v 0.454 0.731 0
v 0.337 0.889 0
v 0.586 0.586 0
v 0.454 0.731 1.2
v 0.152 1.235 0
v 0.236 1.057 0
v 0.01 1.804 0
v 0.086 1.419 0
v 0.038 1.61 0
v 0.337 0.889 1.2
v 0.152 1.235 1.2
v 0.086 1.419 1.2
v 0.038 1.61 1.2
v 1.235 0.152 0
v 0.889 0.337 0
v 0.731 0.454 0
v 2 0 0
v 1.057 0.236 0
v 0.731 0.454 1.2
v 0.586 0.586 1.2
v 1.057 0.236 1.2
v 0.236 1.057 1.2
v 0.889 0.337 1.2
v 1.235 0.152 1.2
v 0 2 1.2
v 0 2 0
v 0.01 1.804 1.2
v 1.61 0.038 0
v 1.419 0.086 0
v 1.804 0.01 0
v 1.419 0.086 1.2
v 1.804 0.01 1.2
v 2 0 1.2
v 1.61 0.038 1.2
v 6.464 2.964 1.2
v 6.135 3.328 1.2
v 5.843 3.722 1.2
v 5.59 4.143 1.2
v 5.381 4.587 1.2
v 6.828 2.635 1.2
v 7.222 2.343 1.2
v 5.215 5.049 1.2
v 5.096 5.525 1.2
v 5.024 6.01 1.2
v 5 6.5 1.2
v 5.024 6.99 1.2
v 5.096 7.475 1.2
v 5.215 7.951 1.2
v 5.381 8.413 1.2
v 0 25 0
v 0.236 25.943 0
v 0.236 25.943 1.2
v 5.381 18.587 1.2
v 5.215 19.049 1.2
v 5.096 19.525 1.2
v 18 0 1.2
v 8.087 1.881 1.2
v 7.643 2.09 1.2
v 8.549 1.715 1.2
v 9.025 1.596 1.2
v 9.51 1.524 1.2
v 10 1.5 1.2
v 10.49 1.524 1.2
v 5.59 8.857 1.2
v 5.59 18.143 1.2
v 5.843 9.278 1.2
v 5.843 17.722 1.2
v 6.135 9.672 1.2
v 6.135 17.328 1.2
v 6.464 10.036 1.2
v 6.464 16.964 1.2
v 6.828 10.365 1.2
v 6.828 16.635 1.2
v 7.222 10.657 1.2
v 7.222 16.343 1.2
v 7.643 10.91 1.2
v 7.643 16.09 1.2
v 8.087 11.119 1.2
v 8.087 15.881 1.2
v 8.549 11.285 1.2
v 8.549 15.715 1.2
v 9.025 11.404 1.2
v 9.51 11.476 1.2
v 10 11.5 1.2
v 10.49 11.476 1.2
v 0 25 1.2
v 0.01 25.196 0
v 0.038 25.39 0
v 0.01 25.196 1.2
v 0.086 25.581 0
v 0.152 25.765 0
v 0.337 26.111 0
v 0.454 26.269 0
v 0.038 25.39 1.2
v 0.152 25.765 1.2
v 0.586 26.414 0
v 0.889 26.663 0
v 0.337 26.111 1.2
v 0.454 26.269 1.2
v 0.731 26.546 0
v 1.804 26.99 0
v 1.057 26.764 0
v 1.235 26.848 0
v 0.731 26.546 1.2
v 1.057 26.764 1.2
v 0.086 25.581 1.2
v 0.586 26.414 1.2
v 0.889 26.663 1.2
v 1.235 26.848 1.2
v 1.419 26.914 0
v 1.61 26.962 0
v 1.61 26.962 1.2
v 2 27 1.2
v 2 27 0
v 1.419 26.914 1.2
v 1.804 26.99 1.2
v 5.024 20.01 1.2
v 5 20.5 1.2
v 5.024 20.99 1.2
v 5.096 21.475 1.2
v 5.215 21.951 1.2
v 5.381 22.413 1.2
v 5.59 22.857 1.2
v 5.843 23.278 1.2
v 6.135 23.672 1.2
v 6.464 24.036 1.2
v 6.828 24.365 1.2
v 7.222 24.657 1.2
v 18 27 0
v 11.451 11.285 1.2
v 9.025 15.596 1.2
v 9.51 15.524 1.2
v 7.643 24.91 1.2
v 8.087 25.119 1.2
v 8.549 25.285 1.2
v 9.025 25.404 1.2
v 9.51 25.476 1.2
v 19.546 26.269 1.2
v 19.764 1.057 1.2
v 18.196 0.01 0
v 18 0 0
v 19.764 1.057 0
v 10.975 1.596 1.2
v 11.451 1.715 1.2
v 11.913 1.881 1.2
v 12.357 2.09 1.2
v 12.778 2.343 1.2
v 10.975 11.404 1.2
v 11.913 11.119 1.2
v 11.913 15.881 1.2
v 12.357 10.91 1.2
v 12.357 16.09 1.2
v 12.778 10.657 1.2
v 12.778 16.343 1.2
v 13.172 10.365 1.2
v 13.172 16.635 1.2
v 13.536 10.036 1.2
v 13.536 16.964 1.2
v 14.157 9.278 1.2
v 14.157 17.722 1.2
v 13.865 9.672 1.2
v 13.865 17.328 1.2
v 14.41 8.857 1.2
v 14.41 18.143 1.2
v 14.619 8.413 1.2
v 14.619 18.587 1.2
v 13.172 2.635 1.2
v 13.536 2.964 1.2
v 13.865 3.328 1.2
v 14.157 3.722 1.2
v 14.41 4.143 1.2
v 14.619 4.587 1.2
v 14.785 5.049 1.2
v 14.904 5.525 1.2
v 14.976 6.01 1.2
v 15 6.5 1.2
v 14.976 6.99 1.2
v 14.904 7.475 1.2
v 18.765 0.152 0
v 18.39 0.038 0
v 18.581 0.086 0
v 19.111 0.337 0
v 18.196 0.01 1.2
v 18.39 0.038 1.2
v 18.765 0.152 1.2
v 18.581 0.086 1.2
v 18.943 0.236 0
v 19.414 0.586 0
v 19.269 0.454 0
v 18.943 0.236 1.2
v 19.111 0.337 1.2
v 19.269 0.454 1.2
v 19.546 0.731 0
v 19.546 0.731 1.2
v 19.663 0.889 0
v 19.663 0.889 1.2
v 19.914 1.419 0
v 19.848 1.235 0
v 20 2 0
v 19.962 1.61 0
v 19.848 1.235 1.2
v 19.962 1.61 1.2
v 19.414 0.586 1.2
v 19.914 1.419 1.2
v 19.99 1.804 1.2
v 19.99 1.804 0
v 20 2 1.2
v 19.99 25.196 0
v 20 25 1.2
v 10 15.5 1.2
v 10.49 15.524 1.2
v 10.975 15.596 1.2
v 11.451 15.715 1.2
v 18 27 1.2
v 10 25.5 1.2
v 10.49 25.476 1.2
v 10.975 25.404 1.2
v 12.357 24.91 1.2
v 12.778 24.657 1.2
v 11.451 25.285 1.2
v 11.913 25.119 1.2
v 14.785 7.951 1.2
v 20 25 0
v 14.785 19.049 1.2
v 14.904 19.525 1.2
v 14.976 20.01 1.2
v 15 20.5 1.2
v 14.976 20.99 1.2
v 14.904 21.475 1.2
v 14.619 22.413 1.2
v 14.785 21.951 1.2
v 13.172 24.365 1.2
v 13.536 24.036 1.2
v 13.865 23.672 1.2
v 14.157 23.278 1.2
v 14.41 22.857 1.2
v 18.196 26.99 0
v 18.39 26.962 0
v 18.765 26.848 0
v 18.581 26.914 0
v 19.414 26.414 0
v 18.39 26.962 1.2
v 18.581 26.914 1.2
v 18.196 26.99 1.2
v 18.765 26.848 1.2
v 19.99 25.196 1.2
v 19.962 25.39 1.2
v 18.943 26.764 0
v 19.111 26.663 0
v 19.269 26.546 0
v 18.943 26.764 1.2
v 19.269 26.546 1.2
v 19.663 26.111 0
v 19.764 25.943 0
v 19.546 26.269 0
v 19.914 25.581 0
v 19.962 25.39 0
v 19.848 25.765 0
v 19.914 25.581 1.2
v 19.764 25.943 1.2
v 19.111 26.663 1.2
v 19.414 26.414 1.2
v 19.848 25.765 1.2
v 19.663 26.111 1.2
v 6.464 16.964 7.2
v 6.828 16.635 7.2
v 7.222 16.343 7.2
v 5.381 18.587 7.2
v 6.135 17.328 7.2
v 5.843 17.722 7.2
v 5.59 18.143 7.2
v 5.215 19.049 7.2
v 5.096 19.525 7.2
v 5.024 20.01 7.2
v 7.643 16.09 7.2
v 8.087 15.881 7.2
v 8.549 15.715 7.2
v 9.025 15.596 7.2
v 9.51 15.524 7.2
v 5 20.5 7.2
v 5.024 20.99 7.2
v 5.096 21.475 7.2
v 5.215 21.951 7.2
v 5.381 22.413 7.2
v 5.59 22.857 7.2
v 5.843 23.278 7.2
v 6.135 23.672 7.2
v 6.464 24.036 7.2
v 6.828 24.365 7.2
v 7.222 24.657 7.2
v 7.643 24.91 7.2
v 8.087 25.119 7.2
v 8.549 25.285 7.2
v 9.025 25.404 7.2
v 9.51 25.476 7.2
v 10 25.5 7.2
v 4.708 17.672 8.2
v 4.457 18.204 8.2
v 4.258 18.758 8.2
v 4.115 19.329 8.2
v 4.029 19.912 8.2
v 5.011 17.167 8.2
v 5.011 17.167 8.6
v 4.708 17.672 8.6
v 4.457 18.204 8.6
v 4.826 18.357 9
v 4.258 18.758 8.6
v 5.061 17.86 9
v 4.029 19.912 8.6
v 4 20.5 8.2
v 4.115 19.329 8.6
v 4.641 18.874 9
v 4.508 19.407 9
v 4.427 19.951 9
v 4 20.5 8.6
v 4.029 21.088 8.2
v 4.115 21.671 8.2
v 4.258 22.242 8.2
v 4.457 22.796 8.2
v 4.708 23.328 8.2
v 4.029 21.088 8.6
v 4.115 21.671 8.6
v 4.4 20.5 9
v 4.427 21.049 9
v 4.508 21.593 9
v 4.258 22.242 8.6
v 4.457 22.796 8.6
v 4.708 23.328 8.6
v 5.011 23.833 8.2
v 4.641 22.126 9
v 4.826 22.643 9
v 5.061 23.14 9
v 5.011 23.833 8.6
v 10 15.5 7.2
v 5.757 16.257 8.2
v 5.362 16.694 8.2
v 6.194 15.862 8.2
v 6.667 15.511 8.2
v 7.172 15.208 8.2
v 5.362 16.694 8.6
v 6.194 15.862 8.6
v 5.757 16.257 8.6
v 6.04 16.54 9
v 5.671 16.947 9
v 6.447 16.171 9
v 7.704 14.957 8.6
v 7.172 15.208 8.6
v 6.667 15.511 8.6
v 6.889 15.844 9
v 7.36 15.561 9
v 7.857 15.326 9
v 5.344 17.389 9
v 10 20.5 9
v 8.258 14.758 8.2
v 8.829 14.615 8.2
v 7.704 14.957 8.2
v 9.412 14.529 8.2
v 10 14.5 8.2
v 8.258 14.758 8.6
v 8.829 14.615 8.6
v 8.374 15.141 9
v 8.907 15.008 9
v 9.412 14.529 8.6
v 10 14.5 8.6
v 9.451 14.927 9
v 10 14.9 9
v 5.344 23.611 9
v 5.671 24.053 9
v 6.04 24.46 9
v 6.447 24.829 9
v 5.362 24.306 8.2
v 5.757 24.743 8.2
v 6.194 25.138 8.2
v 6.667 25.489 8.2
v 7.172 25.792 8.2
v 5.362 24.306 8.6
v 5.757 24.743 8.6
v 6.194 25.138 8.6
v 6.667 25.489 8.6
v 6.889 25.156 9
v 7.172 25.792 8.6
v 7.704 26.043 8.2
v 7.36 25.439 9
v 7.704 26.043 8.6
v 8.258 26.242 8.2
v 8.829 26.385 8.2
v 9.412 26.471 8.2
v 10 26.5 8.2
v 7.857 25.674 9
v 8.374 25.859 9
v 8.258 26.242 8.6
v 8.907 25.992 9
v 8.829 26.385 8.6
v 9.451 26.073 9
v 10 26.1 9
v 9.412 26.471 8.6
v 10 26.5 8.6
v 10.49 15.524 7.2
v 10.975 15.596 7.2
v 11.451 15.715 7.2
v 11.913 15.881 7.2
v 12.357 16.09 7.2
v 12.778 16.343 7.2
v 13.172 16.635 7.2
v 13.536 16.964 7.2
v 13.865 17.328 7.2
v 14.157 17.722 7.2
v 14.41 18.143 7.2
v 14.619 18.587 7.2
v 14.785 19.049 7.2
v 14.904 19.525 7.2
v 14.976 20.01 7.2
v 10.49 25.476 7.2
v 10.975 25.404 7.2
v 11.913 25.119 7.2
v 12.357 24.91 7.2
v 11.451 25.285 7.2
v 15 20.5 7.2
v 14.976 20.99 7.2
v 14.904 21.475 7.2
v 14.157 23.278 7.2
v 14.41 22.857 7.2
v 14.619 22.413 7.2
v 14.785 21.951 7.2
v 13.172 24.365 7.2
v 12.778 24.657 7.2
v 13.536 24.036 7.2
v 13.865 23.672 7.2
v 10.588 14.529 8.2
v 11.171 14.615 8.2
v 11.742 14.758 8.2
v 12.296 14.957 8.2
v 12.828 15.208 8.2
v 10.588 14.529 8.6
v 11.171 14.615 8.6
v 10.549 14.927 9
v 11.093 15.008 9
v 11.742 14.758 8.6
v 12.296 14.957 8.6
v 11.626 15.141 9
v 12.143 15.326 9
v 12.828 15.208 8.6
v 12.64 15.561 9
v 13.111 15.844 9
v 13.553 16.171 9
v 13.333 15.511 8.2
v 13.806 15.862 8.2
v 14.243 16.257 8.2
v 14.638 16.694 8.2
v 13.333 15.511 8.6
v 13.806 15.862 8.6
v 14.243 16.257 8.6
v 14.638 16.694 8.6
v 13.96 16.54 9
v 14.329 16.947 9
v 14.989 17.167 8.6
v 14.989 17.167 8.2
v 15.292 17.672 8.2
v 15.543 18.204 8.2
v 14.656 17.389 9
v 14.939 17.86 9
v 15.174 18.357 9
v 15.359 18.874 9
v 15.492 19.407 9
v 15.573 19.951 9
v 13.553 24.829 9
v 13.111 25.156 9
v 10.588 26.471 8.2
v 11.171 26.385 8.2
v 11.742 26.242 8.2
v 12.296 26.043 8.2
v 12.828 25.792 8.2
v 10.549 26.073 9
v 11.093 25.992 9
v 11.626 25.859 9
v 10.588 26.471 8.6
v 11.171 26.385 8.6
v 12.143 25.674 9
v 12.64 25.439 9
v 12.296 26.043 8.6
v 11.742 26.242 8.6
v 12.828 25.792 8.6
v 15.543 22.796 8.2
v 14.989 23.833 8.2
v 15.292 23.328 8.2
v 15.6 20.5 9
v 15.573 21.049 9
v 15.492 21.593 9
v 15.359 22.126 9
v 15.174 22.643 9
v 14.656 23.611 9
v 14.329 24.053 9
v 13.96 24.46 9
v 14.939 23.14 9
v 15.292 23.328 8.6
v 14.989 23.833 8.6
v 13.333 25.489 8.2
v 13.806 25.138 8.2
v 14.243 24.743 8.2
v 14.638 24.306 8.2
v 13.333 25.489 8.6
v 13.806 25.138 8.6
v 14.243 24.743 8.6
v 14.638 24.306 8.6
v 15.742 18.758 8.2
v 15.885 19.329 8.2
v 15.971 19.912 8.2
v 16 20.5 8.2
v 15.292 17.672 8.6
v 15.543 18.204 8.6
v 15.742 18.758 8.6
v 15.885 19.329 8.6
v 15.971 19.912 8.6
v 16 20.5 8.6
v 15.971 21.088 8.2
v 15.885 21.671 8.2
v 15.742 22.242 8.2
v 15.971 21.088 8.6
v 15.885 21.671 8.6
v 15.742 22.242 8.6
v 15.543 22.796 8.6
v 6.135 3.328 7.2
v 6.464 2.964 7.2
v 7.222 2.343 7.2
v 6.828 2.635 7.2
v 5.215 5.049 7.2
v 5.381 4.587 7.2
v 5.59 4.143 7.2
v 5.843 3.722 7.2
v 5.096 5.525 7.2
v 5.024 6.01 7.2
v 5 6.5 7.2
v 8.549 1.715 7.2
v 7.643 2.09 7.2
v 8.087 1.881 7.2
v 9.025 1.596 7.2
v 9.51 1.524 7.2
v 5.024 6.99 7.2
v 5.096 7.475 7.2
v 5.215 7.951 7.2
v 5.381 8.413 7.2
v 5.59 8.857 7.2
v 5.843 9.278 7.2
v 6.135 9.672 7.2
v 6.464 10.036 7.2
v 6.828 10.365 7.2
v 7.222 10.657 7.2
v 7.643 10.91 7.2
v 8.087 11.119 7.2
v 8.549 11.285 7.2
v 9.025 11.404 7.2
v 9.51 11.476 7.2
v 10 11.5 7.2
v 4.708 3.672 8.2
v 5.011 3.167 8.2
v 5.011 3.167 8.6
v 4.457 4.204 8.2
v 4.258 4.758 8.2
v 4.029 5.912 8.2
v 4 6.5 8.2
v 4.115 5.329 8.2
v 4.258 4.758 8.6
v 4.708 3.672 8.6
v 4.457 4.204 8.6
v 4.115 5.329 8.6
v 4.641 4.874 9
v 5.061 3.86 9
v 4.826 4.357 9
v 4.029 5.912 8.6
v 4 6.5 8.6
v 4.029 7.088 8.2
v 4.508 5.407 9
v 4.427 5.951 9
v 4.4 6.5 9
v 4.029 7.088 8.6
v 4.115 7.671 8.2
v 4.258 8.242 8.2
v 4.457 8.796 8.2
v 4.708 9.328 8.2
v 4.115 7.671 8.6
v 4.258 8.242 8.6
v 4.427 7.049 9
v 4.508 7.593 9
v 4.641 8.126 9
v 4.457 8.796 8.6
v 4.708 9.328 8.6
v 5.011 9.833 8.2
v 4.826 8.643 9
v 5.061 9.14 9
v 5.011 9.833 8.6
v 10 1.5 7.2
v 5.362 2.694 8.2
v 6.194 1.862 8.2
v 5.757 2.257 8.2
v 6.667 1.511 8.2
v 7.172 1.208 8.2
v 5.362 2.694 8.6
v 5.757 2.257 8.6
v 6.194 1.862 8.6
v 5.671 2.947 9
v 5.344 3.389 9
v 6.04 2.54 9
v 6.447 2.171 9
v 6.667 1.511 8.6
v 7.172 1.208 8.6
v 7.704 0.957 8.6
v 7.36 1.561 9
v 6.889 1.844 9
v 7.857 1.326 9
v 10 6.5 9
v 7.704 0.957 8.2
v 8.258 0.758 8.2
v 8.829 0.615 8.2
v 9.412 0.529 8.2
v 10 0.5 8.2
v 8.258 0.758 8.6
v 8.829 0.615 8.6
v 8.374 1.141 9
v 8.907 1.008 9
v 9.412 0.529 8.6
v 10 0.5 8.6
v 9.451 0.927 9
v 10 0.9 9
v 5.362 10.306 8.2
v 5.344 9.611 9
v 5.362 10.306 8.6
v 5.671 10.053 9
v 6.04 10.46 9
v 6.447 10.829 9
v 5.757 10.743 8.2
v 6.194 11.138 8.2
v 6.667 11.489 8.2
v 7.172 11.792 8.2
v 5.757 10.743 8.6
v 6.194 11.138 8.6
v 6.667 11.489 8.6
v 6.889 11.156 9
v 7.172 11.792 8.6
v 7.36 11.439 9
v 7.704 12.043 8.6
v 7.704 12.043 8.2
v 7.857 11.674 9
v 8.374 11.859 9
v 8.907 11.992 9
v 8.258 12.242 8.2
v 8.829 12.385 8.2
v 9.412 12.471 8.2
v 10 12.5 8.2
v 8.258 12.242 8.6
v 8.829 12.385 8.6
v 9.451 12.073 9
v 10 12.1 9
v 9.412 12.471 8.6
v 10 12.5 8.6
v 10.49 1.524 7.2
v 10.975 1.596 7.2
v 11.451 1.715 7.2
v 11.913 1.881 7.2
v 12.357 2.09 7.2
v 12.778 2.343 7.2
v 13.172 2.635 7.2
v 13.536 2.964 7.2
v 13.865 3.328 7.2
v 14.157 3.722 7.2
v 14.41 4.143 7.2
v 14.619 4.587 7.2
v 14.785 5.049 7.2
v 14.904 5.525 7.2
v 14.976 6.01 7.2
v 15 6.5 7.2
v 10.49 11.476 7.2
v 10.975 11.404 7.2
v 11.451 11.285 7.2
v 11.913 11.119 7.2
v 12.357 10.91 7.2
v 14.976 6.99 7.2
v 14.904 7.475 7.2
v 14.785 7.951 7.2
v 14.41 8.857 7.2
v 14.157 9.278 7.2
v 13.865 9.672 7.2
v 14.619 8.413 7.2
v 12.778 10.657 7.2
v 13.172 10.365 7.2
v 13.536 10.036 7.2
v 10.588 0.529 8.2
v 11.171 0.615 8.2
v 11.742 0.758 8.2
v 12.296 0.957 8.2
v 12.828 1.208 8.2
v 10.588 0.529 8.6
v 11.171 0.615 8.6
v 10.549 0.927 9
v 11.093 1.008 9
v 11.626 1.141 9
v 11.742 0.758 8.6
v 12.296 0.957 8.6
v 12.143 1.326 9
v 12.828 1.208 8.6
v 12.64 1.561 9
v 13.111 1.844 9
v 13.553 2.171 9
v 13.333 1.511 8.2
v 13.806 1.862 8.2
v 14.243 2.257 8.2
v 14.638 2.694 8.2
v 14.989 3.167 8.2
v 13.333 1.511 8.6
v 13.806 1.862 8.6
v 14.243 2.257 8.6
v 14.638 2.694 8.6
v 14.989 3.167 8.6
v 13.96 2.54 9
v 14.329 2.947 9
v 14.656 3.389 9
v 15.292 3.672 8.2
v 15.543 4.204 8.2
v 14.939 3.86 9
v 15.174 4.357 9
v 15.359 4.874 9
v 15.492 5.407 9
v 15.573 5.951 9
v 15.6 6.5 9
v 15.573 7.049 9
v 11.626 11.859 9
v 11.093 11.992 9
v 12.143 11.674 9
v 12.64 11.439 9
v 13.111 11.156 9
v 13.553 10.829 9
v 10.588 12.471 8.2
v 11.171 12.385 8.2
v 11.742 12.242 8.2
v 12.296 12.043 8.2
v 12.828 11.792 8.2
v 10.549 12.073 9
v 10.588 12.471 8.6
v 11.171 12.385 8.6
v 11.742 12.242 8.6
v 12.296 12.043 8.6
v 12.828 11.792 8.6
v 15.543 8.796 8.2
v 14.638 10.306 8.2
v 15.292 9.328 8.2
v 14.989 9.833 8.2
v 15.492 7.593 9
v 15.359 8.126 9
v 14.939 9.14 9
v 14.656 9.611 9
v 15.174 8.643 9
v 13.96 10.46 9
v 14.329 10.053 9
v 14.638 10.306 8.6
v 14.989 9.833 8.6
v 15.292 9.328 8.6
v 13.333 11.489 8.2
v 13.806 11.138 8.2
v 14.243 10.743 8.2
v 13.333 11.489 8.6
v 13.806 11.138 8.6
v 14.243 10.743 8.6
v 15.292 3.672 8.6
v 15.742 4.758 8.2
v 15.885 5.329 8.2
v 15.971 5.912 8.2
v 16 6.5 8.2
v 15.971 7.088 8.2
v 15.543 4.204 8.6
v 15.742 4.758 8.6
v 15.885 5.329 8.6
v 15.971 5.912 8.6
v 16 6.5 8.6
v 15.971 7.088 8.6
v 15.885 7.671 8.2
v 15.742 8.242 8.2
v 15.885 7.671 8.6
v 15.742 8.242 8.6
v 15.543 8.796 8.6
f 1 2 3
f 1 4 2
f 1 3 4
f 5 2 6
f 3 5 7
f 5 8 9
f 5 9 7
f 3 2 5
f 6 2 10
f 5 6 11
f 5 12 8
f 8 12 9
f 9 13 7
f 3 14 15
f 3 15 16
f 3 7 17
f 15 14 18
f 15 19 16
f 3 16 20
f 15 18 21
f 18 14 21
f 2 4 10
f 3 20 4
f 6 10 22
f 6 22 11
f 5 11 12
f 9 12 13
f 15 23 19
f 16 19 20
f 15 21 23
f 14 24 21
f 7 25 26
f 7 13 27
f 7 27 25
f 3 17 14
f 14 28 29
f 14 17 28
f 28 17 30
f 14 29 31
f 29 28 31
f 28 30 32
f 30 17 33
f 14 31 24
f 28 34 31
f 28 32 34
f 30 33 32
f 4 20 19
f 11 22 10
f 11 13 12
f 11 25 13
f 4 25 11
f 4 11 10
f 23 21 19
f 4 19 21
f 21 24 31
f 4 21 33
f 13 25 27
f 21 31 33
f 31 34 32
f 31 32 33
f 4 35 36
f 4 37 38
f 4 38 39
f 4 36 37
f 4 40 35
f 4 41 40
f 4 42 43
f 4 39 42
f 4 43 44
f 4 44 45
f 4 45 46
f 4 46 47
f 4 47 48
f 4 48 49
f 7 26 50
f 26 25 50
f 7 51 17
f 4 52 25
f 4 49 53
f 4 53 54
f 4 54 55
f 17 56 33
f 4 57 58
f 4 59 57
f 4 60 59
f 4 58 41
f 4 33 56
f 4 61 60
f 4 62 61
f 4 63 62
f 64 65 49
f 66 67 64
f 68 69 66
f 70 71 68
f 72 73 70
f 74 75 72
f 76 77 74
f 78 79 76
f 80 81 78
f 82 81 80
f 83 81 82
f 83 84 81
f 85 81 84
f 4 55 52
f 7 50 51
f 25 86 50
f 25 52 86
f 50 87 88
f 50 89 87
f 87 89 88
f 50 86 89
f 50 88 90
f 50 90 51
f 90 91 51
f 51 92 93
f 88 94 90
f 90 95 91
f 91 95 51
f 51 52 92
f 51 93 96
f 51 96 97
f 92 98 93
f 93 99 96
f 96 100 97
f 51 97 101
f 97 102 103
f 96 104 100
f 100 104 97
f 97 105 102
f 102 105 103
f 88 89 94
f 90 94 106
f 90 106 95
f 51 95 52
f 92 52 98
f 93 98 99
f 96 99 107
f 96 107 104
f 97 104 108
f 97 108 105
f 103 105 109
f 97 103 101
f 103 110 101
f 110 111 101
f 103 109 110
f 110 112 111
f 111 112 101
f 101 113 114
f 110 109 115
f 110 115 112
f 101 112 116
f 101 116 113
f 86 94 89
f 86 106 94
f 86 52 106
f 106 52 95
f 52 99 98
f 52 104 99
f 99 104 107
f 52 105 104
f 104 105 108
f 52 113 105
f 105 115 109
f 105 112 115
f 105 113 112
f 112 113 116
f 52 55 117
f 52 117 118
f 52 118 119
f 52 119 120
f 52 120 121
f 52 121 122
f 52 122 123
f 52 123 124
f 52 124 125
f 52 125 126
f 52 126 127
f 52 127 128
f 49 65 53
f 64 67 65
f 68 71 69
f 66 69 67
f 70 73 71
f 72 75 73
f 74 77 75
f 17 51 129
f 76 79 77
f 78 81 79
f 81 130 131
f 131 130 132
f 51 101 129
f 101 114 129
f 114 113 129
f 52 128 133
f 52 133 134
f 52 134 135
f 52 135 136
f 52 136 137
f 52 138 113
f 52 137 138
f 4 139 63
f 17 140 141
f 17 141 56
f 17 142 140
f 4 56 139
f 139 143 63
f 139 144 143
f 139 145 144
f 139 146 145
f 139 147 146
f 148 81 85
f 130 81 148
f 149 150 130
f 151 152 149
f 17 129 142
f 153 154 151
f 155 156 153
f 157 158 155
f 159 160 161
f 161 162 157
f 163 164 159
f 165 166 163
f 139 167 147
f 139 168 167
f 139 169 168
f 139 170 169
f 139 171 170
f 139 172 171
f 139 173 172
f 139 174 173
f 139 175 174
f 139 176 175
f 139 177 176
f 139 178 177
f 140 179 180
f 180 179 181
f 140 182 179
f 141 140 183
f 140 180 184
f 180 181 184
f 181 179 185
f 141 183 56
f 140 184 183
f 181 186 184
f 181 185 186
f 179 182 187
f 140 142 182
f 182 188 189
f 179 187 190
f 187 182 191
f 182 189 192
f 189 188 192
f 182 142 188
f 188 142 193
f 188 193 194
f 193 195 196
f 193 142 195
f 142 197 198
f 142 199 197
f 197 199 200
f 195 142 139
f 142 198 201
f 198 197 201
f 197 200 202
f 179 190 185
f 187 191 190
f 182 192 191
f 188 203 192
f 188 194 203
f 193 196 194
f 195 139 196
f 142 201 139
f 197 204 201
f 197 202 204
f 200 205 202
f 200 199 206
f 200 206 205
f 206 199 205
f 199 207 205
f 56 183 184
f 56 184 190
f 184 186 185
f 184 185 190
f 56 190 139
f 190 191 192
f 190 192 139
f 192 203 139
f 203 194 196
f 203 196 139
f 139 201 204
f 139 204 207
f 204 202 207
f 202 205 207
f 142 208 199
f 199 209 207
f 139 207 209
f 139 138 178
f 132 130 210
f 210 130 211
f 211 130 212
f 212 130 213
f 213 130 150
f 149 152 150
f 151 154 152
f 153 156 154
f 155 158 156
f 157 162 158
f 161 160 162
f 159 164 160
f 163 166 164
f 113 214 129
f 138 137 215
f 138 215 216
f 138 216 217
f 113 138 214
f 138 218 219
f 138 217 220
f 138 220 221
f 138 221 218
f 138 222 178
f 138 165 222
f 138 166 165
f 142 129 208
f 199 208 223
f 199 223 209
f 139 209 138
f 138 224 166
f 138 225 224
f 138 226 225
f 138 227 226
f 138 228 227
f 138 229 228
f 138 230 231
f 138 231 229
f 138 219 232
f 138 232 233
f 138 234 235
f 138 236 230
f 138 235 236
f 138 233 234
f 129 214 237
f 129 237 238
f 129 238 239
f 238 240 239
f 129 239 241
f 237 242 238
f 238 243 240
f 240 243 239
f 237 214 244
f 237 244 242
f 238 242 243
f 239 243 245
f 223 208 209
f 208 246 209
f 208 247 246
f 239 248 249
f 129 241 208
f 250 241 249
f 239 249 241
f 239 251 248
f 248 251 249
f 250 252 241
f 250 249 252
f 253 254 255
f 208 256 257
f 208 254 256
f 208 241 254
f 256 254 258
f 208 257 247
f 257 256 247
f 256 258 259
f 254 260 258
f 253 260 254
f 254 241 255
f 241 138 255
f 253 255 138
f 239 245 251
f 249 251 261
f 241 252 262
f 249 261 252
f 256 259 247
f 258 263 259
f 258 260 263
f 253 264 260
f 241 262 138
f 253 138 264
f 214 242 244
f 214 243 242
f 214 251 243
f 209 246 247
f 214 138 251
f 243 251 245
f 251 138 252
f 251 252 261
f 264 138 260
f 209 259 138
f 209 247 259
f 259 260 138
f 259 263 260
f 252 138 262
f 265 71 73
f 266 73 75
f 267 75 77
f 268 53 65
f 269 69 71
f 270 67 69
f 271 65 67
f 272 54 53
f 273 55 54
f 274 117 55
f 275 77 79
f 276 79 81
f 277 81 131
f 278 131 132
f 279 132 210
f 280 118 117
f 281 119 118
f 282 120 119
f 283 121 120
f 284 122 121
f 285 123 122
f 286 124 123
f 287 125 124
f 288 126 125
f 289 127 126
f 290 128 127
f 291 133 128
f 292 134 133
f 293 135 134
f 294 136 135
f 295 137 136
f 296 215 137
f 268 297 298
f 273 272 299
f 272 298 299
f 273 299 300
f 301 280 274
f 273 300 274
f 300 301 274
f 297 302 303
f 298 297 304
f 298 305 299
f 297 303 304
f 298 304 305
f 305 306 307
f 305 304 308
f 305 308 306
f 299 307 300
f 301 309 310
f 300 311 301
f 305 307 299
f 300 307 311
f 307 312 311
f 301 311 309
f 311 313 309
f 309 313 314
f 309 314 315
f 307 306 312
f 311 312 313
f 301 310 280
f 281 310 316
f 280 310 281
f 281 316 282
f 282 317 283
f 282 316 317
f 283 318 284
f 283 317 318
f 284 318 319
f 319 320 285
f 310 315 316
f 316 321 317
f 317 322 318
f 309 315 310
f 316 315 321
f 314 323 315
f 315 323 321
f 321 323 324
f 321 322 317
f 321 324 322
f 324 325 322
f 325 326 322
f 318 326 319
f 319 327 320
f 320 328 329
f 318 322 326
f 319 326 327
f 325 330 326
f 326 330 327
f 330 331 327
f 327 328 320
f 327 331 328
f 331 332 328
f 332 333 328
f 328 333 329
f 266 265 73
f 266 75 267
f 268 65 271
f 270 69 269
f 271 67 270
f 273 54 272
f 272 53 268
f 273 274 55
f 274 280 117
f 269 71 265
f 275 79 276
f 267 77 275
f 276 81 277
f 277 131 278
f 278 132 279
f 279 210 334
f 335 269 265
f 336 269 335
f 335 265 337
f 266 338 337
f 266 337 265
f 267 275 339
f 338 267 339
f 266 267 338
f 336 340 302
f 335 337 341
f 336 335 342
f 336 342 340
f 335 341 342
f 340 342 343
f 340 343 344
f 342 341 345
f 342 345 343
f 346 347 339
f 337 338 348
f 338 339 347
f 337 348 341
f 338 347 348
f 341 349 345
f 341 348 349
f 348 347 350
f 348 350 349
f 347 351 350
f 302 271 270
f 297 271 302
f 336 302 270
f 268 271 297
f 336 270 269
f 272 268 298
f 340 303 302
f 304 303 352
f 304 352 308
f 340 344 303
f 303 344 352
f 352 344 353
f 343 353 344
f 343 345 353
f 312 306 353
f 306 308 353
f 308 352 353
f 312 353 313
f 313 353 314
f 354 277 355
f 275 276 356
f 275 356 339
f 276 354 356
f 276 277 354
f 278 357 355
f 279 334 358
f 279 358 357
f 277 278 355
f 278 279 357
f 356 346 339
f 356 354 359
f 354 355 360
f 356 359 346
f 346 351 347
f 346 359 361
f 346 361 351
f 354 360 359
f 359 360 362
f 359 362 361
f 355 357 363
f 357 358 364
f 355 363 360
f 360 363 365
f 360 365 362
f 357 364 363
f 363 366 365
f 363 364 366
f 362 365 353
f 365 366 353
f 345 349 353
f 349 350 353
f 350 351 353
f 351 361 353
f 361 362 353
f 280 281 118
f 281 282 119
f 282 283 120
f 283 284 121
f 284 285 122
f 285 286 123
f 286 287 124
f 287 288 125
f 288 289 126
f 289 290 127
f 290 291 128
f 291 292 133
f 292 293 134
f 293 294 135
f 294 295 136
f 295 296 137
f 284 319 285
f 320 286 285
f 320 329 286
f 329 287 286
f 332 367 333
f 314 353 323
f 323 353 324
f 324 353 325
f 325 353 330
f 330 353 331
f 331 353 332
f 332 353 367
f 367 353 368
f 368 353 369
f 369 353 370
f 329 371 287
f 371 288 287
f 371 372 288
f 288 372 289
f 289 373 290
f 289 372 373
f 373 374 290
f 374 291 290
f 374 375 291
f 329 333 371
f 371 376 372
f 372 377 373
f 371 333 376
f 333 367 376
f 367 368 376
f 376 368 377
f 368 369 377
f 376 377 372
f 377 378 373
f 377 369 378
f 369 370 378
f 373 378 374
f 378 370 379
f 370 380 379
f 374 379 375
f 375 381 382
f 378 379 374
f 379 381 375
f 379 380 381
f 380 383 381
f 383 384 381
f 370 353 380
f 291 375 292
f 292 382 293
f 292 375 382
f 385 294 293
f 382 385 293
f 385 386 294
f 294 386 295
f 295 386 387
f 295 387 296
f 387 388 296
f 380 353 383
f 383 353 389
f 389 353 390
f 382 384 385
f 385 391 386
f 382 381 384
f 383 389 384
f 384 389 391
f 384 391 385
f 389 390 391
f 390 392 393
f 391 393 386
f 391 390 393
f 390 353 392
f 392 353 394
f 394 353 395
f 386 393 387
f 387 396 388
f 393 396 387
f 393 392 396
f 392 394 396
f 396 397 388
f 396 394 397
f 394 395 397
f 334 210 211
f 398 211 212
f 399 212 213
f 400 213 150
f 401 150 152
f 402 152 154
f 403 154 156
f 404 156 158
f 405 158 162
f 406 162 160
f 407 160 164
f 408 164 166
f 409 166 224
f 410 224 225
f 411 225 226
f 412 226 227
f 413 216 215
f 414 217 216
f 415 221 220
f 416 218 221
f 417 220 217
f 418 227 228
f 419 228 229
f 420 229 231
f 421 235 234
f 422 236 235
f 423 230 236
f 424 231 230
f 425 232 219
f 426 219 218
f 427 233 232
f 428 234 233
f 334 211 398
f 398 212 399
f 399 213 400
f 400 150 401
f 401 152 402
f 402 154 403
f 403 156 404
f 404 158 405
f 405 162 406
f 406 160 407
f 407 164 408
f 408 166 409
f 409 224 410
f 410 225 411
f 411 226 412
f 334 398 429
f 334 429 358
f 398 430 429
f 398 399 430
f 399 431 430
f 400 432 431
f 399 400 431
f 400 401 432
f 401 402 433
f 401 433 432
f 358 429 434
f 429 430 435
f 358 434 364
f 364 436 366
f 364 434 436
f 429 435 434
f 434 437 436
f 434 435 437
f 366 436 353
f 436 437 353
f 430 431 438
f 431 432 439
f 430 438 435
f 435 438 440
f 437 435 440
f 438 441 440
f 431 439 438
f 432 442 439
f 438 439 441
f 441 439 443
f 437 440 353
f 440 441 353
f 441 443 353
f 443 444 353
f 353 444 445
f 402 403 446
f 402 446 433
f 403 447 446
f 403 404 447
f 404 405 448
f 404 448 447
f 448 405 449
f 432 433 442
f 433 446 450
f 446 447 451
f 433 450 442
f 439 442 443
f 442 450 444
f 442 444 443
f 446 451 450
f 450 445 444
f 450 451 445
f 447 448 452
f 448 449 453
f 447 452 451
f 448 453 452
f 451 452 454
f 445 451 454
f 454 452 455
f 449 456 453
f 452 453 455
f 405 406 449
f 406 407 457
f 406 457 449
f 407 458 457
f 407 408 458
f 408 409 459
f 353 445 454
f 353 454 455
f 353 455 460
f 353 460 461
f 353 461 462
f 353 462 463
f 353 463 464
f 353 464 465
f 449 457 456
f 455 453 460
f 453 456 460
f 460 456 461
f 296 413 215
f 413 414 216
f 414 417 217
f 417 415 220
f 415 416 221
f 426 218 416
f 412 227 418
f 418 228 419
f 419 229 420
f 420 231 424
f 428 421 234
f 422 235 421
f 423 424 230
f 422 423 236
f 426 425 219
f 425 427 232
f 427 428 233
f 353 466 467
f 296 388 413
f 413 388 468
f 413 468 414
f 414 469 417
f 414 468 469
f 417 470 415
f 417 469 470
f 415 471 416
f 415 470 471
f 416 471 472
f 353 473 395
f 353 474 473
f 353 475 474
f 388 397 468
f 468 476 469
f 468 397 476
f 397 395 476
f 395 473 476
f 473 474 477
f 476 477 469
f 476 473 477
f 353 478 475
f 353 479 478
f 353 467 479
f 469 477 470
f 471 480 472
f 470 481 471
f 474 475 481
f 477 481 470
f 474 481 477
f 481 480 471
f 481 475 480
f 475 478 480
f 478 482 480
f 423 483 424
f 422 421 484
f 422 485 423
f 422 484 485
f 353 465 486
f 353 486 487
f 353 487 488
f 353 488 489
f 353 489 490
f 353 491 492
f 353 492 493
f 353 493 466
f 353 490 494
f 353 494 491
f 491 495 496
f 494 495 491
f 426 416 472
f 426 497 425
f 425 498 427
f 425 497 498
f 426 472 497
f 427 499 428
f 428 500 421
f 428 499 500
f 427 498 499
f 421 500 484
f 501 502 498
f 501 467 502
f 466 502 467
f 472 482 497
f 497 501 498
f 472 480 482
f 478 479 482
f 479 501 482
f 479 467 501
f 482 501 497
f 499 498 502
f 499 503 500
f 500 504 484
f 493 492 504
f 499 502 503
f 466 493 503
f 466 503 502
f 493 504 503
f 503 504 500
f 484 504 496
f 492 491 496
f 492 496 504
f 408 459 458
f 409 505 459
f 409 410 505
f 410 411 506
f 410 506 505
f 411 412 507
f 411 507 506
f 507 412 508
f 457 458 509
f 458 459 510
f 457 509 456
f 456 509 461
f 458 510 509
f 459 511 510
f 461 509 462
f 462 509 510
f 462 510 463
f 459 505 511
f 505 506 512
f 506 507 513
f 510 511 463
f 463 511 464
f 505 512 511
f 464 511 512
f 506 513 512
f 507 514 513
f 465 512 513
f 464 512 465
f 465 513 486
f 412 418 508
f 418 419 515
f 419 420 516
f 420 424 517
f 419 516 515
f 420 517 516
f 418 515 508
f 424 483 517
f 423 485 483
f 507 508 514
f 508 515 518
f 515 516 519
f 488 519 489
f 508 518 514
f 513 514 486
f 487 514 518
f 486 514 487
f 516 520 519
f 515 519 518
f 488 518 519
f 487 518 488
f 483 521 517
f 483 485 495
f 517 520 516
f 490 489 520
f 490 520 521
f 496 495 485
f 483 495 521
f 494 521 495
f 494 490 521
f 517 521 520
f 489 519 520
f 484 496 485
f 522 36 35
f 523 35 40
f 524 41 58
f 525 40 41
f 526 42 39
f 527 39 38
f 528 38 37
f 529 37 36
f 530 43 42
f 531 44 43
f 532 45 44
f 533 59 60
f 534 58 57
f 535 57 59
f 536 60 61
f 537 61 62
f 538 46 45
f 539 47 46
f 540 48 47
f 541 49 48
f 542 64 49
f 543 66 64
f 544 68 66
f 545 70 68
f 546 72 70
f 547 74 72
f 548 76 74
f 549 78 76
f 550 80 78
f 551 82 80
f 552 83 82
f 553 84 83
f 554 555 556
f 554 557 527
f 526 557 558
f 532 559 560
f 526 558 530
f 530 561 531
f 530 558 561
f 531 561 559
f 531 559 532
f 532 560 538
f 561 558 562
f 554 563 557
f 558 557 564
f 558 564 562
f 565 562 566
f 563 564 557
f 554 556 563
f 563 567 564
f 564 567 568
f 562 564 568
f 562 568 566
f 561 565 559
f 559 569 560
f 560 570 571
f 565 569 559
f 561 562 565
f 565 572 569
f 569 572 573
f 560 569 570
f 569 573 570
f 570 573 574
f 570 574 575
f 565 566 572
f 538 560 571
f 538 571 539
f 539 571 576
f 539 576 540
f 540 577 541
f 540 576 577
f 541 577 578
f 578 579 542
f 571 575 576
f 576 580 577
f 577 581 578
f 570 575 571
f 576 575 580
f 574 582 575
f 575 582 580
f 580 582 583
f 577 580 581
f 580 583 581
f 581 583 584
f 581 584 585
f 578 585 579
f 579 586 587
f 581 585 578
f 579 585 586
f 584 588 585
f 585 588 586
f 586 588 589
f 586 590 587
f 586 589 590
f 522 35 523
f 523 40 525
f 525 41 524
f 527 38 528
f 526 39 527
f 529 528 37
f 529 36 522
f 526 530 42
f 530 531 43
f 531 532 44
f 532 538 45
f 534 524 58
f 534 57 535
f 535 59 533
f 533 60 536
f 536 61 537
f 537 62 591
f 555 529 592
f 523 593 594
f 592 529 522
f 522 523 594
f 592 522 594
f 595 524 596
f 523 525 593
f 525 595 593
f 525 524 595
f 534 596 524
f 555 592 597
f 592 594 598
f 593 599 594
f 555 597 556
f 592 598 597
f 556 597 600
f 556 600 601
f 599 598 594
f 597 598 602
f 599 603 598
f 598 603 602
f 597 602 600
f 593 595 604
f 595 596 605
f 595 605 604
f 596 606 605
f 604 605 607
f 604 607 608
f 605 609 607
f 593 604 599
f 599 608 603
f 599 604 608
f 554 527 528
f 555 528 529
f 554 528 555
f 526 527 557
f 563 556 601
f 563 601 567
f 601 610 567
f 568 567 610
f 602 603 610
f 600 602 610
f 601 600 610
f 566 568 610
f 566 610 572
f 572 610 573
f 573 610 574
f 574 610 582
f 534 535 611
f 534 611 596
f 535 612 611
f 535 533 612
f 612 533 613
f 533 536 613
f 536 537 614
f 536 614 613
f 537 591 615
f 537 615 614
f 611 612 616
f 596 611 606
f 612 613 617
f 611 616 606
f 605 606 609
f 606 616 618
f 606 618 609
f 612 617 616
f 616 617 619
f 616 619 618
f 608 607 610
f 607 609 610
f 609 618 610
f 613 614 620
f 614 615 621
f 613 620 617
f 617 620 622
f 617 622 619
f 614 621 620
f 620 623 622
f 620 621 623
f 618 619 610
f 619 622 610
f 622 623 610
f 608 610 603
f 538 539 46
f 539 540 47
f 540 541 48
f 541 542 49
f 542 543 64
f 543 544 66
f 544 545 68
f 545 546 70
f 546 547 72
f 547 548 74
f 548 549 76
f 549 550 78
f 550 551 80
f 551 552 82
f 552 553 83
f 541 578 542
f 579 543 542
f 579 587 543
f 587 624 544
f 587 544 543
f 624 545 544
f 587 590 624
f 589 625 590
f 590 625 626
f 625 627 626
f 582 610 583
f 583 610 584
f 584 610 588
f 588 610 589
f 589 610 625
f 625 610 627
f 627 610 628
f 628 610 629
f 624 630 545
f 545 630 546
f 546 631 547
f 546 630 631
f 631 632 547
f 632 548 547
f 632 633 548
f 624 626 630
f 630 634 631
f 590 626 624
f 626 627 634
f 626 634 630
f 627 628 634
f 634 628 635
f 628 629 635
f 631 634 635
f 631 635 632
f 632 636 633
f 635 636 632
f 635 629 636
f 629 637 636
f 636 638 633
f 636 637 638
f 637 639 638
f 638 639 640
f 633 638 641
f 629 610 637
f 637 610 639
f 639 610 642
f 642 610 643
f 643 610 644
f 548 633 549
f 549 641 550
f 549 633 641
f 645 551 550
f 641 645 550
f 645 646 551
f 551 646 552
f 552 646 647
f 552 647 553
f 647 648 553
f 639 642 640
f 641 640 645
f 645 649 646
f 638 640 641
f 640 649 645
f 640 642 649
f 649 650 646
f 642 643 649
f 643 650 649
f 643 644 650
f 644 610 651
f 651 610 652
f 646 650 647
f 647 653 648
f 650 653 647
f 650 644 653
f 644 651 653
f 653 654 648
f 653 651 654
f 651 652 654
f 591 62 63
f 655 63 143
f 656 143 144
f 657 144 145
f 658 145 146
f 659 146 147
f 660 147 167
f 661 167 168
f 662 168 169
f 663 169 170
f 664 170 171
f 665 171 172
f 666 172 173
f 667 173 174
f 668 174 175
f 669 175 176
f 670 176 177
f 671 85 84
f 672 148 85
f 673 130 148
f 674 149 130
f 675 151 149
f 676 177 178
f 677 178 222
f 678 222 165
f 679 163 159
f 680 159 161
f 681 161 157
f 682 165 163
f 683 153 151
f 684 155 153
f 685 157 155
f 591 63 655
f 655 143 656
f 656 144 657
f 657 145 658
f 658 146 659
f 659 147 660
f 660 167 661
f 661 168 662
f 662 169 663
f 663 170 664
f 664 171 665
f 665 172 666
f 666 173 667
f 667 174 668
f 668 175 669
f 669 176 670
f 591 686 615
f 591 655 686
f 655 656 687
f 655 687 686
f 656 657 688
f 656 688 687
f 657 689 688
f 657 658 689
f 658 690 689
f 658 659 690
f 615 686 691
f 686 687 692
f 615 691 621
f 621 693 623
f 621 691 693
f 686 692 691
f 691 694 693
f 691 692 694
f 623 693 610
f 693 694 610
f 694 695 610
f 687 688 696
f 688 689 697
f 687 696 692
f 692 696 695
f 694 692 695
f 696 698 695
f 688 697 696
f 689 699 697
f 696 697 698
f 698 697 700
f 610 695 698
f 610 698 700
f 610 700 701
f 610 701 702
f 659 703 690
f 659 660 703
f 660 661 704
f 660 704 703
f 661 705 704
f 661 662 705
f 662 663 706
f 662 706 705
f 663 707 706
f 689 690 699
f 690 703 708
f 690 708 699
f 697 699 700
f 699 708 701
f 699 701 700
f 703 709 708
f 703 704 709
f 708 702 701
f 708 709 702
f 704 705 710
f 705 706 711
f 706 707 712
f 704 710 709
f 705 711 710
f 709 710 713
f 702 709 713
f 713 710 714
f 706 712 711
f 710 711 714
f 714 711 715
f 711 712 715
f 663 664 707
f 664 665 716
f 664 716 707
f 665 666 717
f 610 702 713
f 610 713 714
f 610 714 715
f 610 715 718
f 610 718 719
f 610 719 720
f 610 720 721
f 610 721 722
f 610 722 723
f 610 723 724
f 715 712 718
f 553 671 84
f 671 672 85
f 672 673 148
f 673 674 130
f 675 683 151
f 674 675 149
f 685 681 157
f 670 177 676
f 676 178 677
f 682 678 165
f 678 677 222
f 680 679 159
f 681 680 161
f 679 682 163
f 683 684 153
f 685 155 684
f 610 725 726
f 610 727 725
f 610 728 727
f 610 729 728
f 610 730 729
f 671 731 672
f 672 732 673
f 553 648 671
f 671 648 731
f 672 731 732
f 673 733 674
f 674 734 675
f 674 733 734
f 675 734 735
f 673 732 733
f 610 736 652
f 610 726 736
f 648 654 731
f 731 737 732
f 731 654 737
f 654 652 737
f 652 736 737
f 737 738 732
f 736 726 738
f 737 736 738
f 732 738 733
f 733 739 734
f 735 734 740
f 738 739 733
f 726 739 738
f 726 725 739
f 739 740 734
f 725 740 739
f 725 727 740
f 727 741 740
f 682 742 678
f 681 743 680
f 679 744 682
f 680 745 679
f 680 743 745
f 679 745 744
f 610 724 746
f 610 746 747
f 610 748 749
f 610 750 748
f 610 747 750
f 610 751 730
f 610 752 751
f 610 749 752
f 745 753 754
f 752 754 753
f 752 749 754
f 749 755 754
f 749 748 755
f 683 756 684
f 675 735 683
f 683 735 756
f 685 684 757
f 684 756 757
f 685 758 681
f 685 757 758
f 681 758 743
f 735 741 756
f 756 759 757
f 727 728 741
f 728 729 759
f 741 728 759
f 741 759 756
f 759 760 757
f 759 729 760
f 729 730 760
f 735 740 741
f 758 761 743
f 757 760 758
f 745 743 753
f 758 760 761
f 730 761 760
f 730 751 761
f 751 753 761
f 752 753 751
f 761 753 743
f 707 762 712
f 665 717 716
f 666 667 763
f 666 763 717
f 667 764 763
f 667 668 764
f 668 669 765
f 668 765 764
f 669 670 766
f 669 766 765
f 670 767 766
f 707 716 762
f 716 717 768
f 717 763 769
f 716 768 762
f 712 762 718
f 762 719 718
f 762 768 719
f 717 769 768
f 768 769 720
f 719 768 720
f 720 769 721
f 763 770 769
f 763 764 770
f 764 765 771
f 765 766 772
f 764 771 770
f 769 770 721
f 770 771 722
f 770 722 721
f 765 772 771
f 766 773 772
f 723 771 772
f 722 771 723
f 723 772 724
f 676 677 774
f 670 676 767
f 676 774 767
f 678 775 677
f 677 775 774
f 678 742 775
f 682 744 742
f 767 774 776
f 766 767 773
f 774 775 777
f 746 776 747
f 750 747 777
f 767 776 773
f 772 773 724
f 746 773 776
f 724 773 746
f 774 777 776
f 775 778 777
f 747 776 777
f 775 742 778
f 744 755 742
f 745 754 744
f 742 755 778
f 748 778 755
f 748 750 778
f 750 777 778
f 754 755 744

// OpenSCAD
// v0.3 add-on, 2026-09-09: removable two-post cable guide. Units mm.
// Attach underneath to the tray with existing foam tape after powerless fit.
// Post radius is a design trial, not a verified wire bend-radius specification.
$fn=64;
plate_l=20.0; plate_w=27.0; plate_h=1.2; plate_r=2.0;
core_r=5.0; core_h=6.0; lip_r=6.0;
flare_h=1.0; rim_h=0.4; bevel_h=0.4;
module base() {
    hull() for(x=[plate_r,plate_l-plate_r]) for(y=[plate_r,plate_w-plate_r])
        translate([x,y,0]) cylinder(r=plate_r,h=plate_h);
}
module post() {
    rotate_extrude() polygon([[0,plate_h-0.01],[core_r,plate_h-0.01],
        [core_r,plate_h+core_h],[lip_r,plate_h+core_h+flare_h],
        [lip_r,plate_h+core_h+flare_h+rim_h],
        [lip_r-bevel_h,plate_h+core_h+flare_h+rim_h+bevel_h],
        [0,plate_h+core_h+flare_h+rim_h+bevel_h]]);
}
post_centers=[[10.0, 6.5], [10.0, 20.5]];
union() { base(); for(p=post_centers) translate([p[0],p[1],0]) post(); }
